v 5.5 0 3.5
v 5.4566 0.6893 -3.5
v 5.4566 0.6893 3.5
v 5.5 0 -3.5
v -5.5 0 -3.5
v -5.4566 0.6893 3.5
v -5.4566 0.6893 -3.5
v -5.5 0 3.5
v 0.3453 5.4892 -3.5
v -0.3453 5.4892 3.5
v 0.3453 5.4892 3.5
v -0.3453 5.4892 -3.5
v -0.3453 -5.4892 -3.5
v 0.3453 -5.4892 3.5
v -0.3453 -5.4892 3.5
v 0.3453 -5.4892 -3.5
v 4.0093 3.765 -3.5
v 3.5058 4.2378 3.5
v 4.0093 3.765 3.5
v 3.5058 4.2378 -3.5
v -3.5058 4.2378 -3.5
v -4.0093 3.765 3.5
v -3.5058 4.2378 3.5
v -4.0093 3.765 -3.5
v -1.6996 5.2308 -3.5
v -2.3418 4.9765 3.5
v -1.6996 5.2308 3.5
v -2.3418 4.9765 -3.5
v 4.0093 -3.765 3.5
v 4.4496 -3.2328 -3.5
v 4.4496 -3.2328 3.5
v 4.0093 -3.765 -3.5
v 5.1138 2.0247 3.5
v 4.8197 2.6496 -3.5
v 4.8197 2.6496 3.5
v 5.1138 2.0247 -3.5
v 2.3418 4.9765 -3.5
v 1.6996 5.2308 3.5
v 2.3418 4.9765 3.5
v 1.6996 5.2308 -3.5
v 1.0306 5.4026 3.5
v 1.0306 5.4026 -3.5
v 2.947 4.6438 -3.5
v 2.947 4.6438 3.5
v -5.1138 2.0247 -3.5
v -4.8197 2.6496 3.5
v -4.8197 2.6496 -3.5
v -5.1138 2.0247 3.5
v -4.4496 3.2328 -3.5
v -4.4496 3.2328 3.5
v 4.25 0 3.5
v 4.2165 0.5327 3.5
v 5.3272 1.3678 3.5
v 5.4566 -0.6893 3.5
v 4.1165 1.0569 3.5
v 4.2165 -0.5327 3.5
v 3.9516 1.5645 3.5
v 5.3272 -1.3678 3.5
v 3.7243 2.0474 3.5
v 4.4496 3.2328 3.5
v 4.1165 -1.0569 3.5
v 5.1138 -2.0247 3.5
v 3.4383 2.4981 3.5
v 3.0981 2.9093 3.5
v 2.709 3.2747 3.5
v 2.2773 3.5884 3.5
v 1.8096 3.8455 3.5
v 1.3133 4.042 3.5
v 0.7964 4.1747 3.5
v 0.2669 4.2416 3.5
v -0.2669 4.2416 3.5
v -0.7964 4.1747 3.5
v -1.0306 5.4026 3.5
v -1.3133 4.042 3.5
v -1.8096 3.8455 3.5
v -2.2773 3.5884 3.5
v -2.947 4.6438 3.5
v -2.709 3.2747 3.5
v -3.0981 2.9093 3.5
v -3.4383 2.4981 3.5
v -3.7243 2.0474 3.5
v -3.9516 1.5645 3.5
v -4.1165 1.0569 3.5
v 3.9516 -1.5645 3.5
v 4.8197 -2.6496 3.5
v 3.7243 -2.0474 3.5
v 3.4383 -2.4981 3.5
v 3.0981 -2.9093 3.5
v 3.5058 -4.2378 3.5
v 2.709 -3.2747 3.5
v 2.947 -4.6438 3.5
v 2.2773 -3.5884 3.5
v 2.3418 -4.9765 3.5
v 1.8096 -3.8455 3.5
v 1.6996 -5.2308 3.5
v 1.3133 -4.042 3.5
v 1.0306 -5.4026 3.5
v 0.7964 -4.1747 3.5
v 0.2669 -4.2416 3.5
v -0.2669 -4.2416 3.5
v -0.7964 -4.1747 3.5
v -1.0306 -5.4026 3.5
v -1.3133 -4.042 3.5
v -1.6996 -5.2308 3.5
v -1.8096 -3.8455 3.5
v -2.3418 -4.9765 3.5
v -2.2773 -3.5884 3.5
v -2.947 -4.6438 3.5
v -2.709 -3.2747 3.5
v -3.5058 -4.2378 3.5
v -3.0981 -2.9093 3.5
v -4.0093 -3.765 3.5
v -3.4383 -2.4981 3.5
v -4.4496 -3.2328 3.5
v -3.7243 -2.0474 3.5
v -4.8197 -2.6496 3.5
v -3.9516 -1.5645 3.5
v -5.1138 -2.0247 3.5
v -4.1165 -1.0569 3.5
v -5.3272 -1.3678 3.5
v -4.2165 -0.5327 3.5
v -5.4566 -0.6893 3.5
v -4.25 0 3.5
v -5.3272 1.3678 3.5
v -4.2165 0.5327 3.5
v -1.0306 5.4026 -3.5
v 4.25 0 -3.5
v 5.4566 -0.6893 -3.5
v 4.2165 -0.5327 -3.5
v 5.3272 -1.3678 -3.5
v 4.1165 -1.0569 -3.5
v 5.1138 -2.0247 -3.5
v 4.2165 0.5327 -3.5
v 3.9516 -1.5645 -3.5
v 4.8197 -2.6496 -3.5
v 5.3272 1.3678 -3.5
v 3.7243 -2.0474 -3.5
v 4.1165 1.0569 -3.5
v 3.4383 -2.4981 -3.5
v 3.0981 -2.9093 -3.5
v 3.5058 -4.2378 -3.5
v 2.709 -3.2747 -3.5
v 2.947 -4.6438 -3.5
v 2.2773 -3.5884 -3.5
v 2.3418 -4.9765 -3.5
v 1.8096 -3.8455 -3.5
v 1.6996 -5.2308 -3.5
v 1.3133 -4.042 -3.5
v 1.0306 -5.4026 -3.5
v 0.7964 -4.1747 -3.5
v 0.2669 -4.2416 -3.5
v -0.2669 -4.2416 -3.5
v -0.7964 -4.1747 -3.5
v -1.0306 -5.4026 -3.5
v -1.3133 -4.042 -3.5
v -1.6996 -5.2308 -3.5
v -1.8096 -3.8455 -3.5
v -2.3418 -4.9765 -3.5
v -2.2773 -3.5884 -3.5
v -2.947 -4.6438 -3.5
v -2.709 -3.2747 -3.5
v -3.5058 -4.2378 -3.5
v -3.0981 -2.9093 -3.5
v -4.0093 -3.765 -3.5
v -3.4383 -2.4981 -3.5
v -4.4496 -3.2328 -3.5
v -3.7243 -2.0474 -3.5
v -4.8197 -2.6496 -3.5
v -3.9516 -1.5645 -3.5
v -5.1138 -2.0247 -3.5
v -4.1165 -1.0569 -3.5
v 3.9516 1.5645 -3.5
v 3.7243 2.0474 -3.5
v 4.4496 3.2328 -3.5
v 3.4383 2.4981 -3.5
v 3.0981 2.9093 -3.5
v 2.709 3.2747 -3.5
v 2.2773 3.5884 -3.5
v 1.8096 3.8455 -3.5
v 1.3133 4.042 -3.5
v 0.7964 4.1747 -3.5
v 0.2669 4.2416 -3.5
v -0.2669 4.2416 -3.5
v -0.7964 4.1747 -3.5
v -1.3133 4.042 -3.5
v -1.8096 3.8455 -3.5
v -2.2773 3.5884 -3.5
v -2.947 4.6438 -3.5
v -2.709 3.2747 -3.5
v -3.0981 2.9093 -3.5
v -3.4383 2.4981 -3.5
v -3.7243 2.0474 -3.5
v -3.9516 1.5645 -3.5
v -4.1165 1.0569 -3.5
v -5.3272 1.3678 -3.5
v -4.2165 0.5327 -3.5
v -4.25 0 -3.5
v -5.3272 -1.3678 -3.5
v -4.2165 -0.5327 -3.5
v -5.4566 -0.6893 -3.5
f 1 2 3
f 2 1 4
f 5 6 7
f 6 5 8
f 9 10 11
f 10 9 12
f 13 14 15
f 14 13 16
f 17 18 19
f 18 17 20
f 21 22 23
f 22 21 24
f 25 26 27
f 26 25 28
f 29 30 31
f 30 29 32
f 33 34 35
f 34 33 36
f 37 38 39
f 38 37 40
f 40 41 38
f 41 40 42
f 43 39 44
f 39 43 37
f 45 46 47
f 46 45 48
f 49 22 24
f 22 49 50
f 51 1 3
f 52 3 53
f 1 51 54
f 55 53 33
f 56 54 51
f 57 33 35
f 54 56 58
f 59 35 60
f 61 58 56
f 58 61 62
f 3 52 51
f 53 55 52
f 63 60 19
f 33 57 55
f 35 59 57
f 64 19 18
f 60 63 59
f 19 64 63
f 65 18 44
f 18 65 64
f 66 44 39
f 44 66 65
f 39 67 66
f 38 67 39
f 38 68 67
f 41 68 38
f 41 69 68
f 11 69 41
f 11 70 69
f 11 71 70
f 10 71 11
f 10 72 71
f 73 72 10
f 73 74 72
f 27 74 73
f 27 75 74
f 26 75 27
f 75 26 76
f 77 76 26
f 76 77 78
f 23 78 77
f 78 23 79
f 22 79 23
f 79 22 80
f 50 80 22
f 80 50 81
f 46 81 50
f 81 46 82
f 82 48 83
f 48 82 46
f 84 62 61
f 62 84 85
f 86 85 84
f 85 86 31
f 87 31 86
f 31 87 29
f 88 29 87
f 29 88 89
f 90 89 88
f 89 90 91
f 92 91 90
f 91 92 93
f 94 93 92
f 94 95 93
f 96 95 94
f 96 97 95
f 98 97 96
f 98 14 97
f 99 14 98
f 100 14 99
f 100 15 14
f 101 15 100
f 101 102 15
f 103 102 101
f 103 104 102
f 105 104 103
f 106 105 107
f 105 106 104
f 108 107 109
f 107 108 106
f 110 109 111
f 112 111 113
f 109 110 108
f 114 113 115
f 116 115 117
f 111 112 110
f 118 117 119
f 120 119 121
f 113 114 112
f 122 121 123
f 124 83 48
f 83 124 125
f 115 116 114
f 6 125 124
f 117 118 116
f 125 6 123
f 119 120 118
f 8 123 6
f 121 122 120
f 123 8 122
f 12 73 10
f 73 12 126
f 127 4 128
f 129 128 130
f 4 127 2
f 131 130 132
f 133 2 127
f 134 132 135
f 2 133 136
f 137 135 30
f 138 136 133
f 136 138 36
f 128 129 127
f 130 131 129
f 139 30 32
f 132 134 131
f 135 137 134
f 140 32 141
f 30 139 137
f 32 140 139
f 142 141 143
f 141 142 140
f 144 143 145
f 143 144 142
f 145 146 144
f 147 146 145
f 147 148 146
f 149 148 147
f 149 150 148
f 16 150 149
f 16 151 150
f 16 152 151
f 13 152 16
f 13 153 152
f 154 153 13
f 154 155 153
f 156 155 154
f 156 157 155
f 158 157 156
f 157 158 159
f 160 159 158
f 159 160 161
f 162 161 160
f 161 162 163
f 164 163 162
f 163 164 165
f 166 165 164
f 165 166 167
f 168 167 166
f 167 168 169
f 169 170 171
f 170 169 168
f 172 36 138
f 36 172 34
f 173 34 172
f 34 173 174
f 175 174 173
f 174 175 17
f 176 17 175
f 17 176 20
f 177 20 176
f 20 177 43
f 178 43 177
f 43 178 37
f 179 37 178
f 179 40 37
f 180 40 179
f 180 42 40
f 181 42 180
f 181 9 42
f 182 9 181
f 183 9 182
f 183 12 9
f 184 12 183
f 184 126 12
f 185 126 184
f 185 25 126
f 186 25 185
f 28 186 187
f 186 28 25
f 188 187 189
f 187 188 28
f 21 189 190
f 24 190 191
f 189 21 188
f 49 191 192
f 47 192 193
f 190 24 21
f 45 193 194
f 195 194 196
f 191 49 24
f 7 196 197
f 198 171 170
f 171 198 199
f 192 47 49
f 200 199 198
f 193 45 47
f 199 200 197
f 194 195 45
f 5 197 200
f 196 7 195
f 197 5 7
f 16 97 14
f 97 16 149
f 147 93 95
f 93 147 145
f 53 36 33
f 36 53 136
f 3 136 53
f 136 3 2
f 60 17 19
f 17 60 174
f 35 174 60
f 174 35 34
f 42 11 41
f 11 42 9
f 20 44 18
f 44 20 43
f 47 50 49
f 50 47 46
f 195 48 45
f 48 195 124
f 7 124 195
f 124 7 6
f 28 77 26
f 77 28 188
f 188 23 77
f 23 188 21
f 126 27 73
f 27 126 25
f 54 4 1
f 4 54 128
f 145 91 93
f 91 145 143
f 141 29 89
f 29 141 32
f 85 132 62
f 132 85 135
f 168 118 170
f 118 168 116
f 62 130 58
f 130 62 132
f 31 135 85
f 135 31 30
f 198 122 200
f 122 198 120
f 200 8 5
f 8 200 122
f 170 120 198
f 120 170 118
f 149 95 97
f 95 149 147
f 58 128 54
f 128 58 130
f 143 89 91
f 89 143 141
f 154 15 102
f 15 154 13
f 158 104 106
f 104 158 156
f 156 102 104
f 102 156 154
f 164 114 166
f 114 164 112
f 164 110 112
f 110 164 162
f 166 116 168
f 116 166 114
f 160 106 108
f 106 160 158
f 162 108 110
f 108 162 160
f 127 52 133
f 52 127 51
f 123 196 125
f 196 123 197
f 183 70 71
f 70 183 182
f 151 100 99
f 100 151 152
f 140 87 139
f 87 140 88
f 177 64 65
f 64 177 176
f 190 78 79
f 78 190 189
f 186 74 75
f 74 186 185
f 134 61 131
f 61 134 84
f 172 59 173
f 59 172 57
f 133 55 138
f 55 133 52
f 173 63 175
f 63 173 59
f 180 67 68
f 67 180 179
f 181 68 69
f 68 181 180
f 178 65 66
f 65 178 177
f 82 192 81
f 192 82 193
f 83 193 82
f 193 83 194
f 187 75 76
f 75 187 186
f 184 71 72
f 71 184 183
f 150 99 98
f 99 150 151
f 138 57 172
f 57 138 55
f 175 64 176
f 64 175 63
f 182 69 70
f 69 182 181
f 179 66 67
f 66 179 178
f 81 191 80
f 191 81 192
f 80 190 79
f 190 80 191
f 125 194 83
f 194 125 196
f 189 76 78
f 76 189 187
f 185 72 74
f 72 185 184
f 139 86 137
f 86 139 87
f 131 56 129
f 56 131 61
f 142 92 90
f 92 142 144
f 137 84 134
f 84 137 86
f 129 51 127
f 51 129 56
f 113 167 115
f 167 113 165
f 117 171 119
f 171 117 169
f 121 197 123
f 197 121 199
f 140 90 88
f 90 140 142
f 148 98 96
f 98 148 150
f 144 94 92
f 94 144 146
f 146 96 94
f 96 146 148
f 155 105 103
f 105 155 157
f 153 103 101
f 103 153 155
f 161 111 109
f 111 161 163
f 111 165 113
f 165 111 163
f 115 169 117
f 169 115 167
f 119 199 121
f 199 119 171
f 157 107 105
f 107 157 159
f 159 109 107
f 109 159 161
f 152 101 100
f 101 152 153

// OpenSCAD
$fn = 50;


difference() {
	union() {
		translate(v = [0, 0, -3.5000000000]) {
			cylinder(h = 7, r = 5.5000000000);
		}
	}
	union() {
		translate(v = [0, 0, -100.0000000000]) {
			cylinder(h = 200, r = 4.2500000000);
		}
	}
}
